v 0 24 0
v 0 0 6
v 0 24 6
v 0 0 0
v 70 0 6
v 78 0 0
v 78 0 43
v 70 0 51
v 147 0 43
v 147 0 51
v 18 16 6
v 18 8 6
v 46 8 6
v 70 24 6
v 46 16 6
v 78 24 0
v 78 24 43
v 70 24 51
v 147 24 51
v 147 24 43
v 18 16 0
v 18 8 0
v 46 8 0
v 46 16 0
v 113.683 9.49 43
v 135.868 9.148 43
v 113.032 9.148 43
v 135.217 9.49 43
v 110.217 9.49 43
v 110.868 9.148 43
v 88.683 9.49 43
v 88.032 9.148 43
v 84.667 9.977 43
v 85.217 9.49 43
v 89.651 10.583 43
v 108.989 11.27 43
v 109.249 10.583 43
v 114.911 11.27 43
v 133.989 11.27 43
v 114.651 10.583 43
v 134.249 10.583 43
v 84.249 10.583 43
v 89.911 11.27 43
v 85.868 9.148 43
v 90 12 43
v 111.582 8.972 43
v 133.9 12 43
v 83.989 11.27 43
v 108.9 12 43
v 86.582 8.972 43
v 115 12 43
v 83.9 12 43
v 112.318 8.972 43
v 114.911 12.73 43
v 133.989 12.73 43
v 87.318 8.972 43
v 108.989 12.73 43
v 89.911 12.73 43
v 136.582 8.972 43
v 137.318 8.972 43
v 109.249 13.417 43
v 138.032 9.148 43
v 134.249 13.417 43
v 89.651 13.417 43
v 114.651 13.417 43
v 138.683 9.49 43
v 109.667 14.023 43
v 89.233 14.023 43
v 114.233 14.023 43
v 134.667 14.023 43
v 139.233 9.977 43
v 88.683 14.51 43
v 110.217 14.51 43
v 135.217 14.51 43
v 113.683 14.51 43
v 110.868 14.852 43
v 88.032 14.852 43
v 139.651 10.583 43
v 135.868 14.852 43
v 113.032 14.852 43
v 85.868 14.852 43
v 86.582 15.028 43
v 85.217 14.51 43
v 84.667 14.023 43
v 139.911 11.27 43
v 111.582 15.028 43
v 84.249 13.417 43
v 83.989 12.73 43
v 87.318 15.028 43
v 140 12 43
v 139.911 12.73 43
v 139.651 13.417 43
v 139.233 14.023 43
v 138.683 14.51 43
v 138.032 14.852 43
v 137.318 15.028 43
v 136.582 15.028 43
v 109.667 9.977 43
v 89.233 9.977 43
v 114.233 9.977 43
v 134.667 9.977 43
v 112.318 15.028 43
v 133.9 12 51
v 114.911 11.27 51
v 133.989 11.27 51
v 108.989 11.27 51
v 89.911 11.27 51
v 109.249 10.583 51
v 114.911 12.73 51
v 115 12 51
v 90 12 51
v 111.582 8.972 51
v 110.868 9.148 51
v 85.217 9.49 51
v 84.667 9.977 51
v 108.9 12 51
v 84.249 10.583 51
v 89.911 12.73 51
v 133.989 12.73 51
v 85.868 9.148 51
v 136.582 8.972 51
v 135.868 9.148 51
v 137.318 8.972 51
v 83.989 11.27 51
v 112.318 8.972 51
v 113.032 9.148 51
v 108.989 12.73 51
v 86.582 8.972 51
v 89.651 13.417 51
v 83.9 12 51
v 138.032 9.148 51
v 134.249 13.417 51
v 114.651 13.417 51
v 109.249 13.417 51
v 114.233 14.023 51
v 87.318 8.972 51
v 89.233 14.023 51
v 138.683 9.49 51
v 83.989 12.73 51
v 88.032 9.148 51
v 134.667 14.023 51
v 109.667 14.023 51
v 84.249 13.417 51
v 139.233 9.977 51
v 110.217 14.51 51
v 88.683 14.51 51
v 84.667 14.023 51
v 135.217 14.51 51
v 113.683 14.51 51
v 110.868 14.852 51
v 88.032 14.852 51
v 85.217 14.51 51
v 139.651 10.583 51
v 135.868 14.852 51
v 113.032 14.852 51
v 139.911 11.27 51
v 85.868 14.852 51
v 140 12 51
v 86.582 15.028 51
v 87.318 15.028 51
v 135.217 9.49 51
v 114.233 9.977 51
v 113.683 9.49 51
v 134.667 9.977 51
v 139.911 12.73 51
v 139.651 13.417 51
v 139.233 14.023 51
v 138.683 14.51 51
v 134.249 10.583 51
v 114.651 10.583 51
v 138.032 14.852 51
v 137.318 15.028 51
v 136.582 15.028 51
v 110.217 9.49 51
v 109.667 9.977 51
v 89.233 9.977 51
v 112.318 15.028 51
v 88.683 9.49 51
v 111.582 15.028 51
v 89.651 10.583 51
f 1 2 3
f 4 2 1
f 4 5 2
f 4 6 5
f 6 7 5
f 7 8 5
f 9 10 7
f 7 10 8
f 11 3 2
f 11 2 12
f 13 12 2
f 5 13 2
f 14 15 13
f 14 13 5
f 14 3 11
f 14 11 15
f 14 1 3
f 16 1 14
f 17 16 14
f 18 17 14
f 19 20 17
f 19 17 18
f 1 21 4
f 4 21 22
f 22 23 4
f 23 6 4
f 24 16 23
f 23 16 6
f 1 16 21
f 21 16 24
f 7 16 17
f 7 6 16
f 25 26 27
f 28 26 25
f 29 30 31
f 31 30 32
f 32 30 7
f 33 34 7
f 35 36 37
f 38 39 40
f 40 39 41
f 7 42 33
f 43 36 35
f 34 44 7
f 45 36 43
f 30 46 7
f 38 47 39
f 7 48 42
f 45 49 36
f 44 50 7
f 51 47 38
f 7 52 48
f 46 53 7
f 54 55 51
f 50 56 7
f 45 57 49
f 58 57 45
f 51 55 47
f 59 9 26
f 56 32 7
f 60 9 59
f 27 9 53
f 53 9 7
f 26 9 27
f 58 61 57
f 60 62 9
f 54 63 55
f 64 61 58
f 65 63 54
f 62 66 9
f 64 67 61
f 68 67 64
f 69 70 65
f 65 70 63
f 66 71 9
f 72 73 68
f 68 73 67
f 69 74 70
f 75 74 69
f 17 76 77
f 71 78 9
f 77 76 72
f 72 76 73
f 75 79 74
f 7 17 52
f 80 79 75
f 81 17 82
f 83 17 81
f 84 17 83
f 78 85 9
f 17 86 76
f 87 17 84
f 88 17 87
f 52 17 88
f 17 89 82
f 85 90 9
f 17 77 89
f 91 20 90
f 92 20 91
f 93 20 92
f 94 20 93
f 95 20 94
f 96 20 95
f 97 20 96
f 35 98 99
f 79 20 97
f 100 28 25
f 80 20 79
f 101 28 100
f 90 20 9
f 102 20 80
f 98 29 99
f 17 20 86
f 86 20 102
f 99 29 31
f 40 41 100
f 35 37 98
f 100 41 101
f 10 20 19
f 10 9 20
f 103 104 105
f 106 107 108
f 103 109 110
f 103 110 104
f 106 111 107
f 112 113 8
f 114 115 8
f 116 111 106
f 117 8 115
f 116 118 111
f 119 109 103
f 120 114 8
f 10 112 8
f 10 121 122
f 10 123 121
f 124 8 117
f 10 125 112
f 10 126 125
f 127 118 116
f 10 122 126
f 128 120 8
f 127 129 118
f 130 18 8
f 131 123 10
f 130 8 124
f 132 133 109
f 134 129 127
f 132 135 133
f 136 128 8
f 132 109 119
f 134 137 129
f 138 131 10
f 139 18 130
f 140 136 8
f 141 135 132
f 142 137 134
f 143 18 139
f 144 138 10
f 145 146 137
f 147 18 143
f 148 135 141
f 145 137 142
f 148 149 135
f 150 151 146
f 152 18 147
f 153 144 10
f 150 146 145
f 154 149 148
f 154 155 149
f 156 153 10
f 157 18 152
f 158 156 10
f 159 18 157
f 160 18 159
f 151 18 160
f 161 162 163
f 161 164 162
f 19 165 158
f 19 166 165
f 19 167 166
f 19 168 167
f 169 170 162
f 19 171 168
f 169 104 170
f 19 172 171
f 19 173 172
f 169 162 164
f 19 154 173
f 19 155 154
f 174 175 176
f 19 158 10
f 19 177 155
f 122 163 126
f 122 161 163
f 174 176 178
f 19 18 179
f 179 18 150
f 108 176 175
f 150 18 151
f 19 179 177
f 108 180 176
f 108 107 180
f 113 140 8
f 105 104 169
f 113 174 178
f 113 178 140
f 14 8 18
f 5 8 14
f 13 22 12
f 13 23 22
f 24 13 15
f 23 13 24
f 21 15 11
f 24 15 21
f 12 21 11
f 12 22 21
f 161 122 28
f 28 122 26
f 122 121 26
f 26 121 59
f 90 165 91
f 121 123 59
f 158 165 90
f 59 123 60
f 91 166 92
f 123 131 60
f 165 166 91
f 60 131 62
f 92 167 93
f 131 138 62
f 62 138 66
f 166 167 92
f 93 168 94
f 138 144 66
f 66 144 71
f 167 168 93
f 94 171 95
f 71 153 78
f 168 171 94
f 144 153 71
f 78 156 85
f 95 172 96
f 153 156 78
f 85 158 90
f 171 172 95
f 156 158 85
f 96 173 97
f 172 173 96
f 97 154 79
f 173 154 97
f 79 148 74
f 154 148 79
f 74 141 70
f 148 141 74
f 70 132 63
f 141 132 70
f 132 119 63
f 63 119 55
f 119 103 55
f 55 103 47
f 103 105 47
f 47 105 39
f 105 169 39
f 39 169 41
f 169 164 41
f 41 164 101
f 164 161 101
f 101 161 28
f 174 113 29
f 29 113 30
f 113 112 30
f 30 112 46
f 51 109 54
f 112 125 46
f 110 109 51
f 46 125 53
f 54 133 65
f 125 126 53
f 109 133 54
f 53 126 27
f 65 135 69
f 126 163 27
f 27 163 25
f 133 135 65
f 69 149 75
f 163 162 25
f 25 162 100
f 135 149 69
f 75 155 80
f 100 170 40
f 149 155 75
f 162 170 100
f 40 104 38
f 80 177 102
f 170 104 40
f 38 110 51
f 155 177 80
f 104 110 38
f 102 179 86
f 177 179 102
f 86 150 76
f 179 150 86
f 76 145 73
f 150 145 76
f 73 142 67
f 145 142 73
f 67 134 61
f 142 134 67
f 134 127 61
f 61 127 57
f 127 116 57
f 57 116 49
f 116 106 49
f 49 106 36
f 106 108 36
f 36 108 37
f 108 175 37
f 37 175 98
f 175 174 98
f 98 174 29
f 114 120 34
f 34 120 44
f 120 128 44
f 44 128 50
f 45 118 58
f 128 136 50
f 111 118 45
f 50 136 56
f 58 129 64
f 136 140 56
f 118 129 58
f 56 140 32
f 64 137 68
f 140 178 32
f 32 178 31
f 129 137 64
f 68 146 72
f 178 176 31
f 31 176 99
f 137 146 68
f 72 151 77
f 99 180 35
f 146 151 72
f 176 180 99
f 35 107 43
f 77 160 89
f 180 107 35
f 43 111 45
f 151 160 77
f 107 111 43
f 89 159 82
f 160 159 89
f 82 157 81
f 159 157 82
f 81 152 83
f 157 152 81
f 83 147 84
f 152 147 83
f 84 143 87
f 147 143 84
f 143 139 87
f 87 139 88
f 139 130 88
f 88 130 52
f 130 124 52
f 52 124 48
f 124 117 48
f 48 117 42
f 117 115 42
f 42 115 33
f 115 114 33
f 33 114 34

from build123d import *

# Parameters (mm, degrees)
BOX003_W          = 28
BOX003_H          = 8
BOX003_DEPTH      = 10
CYLINDER_R        = 3.05
CYLINDER_DEPTH    = 80
CYLINDER001_R     = 3.05
CYLINDER001_DEPTH = 80
CYLINDER002_R     = 3.05
CYLINDER002_DEPTH = 80
BOX001_W          = 70
BOX001_H          = 24
BOX001_DEPTH      = 45
BOX002_W          = 80
BOX002_H          = 24
BOX002_DEPTH      = 43
BOX_W             = 147
BOX_H             = 24
BOX_DEPTH         = 51


with BuildPart() as slide_hole:
    # Box003 → Box003 (new body)
    with BuildSketch(Plane(origin=(18, 8, 0), x_dir=(1, 0, 0), z_dir=(0, 0, 1))):
        with Locations((14, 4)):
            Rectangle(BOX003_W, BOX003_H)
    extrude(amount=BOX003_DEPTH)


with BuildPart() as hole_r:
    # Cylinder → Cylinder (new body)
    with BuildSketch(Plane(origin=(136.95, 12, 0), x_dir=(1, 0, 0), z_dir=(0, 0, 1))):
        Circle(CYLINDER_R)
    extrude(amount=CYLINDER_DEPTH)


with BuildPart() as hole_c:
    # Cylinder001 → Cylinder001 (new body)
    with BuildSketch(Plane(origin=(111.95, 12, 0), x_dir=(1, 0, 0), z_dir=(0, 0, 1))):
        Circle(CYLINDER001_R)
    extrude(amount=CYLINDER001_DEPTH)


with BuildPart() as hole_l:
    # Cylinder002 → Cylinder002 (new body)
    with BuildSketch(Plane(origin=(86.95, 12, 0), x_dir=(1, 0, 0), z_dir=(0, 0, 1))):
        Circle(CYLINDER002_R)
    extrude(amount=CYLINDER002_DEPTH)


with BuildPart() as left_cut:
    # Box001 → Box001 (new body)
    with BuildSketch(Plane.XY.offset(6)):
        with Locations((35, 12)):
            Rectangle(BOX001_W, BOX001_H)
    extrude(amount=BOX001_DEPTH)


with BuildPart() as right_cut:
    # Box002 → Box002 (new body)
    with BuildSketch(Plane(origin=(78, 0, 0), x_dir=(1, 0, 0), z_dir=(0, 0, 1))):
        with Locations((40, 12)):
            Rectangle(BOX002_W, BOX002_H)
    extrude(amount=BOX002_DEPTH)


with BuildPart() as cut005:
    # Box → Box (new body)
    with BuildSketch(Plane.XY):
        with Locations((73.5, 12)):
            Rectangle(BOX_W, BOX_H)
    extrude(amount=BOX_DEPTH)

    # Cut: cut Right Cut
    add(right_cut.part, mode=Mode.SUBTRACT)

    # Cut001: cut Left Cut
    add(left_cut.part, mode=Mode.SUBTRACT)

    # Cut002: cut Hole L
    add(hole_l.part, mode=Mode.SUBTRACT)

    # Cut003: cut Hole C
    add(hole_c.part, mode=Mode.SUBTRACT)

    # Cut004: cut Hole R
    add(hole_r.part, mode=Mode.SUBTRACT)

    # Cut005: cut Slide Hole
    add(slide_hole.part, mode=Mode.SUBTRACT)


solid = cut005.part
